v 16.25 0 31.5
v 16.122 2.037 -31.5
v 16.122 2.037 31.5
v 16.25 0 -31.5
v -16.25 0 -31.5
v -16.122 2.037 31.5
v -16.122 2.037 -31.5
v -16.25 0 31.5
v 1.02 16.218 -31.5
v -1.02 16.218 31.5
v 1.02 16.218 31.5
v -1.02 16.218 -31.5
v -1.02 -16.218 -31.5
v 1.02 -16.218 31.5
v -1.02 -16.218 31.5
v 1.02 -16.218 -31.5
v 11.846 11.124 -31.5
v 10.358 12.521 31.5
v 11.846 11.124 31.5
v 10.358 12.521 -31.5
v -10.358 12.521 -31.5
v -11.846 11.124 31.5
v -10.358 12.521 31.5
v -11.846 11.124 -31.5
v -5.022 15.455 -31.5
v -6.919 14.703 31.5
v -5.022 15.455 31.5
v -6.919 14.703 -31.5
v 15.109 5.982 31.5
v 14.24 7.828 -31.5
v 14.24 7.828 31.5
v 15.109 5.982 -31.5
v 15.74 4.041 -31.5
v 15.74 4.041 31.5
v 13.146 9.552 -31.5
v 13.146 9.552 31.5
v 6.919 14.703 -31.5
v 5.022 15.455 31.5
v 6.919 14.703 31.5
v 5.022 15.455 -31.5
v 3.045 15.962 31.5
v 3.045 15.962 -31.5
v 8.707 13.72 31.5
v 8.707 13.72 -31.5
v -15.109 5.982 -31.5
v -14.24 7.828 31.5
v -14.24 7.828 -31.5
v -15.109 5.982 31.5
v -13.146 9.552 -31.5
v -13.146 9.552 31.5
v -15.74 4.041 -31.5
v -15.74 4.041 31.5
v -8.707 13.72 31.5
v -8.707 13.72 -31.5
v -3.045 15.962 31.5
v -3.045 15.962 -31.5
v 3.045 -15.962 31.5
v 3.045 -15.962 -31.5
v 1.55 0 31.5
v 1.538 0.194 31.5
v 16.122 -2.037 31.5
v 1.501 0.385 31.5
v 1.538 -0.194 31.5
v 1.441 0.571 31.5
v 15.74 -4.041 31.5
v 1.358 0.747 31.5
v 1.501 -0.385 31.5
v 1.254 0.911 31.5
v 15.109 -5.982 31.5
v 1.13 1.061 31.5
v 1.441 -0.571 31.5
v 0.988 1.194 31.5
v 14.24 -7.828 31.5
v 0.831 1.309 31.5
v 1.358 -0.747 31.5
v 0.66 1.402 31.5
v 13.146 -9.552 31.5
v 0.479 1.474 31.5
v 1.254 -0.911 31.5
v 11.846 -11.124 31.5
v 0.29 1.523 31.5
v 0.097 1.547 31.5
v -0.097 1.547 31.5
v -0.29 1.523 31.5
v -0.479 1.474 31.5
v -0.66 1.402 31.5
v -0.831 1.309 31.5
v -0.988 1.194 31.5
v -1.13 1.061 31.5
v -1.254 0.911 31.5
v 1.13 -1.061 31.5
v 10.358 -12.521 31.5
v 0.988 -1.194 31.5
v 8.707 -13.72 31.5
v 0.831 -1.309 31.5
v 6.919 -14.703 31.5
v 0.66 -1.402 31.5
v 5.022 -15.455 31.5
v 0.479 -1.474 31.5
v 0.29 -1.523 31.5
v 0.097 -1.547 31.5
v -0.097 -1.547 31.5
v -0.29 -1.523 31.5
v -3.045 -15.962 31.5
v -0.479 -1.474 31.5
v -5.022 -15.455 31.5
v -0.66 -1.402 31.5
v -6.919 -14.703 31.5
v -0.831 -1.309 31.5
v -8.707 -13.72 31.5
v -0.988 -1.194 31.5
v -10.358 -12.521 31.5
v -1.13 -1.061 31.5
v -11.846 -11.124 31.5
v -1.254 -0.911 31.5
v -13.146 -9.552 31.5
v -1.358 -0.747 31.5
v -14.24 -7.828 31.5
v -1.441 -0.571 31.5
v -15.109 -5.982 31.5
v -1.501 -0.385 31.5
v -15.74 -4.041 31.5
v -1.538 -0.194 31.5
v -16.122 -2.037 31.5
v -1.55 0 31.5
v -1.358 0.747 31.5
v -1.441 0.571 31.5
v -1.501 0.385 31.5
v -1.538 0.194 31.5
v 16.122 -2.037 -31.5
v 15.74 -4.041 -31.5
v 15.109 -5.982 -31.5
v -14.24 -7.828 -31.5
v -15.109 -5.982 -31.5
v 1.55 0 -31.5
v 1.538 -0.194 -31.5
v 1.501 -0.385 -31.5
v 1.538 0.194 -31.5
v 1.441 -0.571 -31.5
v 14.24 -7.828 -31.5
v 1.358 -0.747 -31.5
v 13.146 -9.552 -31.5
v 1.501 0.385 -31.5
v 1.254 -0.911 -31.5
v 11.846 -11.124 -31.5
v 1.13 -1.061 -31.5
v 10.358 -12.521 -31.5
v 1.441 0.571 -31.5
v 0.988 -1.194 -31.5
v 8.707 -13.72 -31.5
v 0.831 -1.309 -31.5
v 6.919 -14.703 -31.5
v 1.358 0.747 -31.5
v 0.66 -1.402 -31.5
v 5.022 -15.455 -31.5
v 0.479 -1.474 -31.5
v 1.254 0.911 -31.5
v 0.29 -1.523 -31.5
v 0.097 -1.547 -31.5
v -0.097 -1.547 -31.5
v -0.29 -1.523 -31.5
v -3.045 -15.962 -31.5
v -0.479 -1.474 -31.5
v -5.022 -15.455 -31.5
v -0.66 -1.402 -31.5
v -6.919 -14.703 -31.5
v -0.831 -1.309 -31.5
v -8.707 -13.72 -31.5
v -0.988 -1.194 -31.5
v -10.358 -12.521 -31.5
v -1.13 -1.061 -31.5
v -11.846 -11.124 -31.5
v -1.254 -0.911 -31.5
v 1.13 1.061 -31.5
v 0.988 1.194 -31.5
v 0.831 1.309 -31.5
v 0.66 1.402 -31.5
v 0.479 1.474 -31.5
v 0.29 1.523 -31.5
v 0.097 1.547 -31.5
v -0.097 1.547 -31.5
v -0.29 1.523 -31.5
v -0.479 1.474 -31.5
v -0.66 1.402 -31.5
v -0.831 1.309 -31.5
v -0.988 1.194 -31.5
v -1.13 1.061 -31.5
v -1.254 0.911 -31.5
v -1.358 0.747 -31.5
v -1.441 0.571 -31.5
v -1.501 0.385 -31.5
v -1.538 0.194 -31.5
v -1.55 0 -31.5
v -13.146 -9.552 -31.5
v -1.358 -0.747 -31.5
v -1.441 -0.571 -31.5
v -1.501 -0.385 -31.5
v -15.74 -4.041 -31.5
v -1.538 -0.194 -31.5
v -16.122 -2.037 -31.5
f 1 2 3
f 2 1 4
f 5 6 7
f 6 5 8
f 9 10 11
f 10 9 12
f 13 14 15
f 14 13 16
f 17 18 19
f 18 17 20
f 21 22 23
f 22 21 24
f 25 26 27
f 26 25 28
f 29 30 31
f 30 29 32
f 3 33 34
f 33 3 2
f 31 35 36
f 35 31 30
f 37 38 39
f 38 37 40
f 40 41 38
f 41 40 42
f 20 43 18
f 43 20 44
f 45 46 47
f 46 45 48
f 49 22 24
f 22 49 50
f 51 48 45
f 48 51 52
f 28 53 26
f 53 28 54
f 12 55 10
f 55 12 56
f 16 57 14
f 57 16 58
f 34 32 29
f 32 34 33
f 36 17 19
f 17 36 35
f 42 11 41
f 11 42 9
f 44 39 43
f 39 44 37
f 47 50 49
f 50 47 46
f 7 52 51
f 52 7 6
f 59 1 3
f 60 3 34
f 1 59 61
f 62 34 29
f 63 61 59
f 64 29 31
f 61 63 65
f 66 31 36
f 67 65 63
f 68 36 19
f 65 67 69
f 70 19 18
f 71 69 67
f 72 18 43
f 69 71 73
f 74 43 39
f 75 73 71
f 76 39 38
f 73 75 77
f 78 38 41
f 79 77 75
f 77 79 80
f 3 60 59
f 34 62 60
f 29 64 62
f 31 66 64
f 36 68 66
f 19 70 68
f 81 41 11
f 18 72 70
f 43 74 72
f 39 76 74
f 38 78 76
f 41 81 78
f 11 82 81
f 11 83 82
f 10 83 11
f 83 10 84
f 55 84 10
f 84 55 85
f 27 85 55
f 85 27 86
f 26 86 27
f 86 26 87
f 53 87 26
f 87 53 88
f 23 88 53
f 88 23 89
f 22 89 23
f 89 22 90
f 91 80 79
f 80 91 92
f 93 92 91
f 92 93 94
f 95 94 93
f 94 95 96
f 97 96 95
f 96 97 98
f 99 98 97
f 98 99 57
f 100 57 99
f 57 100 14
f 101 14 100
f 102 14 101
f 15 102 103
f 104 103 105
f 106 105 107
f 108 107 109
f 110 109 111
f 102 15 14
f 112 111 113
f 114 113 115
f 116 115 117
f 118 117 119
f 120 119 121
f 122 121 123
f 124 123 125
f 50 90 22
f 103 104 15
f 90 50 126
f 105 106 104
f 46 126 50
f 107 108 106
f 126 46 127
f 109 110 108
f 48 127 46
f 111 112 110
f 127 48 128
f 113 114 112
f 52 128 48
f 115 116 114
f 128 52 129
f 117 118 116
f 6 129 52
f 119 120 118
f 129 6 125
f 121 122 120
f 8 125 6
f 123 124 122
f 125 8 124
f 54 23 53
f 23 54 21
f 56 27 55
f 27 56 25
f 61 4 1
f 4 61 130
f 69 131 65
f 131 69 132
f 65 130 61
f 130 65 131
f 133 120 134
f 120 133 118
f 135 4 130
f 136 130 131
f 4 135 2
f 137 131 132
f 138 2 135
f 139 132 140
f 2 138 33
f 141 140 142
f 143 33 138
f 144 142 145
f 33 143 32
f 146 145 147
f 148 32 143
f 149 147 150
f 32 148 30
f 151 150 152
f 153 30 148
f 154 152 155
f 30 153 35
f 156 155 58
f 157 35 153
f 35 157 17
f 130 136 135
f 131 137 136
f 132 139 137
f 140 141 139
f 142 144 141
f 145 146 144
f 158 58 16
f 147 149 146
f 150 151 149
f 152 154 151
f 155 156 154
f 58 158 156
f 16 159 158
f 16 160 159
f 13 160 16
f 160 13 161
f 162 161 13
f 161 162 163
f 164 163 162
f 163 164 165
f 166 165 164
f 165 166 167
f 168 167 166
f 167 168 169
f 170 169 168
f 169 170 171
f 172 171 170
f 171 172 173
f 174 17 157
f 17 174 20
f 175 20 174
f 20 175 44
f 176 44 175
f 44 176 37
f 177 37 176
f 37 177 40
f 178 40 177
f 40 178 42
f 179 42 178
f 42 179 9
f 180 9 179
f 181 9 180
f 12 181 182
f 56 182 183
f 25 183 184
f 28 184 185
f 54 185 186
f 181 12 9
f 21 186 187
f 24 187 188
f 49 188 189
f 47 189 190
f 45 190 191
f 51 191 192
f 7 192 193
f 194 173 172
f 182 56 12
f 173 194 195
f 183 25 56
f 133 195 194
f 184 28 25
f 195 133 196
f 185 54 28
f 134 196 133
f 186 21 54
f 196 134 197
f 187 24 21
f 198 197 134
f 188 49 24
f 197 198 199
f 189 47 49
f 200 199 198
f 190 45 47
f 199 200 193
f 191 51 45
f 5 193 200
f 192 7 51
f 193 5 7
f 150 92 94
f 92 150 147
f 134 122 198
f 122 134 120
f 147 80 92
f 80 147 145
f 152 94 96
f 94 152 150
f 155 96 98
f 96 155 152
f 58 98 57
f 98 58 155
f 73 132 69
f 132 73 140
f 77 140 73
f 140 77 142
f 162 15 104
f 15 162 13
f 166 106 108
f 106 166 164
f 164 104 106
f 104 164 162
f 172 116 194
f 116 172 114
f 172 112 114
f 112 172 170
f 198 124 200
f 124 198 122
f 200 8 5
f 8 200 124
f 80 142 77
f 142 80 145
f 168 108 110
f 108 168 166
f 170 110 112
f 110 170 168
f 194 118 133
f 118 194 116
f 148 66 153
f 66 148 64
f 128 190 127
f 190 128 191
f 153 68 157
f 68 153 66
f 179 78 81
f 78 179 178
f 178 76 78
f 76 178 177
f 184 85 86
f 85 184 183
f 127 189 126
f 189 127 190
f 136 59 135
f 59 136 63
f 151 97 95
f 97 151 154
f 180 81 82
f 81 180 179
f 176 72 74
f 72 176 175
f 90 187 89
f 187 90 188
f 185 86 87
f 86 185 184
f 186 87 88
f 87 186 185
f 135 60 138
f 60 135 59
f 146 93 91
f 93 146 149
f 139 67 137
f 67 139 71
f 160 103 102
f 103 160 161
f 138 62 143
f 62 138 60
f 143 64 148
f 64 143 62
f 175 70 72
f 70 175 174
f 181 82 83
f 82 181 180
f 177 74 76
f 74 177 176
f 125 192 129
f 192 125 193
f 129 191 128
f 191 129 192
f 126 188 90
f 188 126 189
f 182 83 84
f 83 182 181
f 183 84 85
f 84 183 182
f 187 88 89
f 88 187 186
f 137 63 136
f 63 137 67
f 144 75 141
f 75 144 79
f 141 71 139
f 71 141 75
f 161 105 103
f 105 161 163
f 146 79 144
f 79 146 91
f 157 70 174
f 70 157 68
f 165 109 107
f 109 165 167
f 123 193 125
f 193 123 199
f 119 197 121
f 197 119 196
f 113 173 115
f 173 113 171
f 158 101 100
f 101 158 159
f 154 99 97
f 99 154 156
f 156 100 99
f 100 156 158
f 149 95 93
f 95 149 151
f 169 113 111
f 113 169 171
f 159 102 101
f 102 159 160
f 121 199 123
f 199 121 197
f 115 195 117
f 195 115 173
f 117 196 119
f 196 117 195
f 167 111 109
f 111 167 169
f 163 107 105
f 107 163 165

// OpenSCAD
$fn = 50;


difference() {
	union() {
		translate(v = [0, 0, -31.5000000000]) {
			cylinder(h = 63, r = 16.2500000000);
		}
	}
	union() {
		translate(v = [0, 0, -100.0000000000]) {
			cylinder(h = 200, r = 1.5500000000);
		}
	}
}
